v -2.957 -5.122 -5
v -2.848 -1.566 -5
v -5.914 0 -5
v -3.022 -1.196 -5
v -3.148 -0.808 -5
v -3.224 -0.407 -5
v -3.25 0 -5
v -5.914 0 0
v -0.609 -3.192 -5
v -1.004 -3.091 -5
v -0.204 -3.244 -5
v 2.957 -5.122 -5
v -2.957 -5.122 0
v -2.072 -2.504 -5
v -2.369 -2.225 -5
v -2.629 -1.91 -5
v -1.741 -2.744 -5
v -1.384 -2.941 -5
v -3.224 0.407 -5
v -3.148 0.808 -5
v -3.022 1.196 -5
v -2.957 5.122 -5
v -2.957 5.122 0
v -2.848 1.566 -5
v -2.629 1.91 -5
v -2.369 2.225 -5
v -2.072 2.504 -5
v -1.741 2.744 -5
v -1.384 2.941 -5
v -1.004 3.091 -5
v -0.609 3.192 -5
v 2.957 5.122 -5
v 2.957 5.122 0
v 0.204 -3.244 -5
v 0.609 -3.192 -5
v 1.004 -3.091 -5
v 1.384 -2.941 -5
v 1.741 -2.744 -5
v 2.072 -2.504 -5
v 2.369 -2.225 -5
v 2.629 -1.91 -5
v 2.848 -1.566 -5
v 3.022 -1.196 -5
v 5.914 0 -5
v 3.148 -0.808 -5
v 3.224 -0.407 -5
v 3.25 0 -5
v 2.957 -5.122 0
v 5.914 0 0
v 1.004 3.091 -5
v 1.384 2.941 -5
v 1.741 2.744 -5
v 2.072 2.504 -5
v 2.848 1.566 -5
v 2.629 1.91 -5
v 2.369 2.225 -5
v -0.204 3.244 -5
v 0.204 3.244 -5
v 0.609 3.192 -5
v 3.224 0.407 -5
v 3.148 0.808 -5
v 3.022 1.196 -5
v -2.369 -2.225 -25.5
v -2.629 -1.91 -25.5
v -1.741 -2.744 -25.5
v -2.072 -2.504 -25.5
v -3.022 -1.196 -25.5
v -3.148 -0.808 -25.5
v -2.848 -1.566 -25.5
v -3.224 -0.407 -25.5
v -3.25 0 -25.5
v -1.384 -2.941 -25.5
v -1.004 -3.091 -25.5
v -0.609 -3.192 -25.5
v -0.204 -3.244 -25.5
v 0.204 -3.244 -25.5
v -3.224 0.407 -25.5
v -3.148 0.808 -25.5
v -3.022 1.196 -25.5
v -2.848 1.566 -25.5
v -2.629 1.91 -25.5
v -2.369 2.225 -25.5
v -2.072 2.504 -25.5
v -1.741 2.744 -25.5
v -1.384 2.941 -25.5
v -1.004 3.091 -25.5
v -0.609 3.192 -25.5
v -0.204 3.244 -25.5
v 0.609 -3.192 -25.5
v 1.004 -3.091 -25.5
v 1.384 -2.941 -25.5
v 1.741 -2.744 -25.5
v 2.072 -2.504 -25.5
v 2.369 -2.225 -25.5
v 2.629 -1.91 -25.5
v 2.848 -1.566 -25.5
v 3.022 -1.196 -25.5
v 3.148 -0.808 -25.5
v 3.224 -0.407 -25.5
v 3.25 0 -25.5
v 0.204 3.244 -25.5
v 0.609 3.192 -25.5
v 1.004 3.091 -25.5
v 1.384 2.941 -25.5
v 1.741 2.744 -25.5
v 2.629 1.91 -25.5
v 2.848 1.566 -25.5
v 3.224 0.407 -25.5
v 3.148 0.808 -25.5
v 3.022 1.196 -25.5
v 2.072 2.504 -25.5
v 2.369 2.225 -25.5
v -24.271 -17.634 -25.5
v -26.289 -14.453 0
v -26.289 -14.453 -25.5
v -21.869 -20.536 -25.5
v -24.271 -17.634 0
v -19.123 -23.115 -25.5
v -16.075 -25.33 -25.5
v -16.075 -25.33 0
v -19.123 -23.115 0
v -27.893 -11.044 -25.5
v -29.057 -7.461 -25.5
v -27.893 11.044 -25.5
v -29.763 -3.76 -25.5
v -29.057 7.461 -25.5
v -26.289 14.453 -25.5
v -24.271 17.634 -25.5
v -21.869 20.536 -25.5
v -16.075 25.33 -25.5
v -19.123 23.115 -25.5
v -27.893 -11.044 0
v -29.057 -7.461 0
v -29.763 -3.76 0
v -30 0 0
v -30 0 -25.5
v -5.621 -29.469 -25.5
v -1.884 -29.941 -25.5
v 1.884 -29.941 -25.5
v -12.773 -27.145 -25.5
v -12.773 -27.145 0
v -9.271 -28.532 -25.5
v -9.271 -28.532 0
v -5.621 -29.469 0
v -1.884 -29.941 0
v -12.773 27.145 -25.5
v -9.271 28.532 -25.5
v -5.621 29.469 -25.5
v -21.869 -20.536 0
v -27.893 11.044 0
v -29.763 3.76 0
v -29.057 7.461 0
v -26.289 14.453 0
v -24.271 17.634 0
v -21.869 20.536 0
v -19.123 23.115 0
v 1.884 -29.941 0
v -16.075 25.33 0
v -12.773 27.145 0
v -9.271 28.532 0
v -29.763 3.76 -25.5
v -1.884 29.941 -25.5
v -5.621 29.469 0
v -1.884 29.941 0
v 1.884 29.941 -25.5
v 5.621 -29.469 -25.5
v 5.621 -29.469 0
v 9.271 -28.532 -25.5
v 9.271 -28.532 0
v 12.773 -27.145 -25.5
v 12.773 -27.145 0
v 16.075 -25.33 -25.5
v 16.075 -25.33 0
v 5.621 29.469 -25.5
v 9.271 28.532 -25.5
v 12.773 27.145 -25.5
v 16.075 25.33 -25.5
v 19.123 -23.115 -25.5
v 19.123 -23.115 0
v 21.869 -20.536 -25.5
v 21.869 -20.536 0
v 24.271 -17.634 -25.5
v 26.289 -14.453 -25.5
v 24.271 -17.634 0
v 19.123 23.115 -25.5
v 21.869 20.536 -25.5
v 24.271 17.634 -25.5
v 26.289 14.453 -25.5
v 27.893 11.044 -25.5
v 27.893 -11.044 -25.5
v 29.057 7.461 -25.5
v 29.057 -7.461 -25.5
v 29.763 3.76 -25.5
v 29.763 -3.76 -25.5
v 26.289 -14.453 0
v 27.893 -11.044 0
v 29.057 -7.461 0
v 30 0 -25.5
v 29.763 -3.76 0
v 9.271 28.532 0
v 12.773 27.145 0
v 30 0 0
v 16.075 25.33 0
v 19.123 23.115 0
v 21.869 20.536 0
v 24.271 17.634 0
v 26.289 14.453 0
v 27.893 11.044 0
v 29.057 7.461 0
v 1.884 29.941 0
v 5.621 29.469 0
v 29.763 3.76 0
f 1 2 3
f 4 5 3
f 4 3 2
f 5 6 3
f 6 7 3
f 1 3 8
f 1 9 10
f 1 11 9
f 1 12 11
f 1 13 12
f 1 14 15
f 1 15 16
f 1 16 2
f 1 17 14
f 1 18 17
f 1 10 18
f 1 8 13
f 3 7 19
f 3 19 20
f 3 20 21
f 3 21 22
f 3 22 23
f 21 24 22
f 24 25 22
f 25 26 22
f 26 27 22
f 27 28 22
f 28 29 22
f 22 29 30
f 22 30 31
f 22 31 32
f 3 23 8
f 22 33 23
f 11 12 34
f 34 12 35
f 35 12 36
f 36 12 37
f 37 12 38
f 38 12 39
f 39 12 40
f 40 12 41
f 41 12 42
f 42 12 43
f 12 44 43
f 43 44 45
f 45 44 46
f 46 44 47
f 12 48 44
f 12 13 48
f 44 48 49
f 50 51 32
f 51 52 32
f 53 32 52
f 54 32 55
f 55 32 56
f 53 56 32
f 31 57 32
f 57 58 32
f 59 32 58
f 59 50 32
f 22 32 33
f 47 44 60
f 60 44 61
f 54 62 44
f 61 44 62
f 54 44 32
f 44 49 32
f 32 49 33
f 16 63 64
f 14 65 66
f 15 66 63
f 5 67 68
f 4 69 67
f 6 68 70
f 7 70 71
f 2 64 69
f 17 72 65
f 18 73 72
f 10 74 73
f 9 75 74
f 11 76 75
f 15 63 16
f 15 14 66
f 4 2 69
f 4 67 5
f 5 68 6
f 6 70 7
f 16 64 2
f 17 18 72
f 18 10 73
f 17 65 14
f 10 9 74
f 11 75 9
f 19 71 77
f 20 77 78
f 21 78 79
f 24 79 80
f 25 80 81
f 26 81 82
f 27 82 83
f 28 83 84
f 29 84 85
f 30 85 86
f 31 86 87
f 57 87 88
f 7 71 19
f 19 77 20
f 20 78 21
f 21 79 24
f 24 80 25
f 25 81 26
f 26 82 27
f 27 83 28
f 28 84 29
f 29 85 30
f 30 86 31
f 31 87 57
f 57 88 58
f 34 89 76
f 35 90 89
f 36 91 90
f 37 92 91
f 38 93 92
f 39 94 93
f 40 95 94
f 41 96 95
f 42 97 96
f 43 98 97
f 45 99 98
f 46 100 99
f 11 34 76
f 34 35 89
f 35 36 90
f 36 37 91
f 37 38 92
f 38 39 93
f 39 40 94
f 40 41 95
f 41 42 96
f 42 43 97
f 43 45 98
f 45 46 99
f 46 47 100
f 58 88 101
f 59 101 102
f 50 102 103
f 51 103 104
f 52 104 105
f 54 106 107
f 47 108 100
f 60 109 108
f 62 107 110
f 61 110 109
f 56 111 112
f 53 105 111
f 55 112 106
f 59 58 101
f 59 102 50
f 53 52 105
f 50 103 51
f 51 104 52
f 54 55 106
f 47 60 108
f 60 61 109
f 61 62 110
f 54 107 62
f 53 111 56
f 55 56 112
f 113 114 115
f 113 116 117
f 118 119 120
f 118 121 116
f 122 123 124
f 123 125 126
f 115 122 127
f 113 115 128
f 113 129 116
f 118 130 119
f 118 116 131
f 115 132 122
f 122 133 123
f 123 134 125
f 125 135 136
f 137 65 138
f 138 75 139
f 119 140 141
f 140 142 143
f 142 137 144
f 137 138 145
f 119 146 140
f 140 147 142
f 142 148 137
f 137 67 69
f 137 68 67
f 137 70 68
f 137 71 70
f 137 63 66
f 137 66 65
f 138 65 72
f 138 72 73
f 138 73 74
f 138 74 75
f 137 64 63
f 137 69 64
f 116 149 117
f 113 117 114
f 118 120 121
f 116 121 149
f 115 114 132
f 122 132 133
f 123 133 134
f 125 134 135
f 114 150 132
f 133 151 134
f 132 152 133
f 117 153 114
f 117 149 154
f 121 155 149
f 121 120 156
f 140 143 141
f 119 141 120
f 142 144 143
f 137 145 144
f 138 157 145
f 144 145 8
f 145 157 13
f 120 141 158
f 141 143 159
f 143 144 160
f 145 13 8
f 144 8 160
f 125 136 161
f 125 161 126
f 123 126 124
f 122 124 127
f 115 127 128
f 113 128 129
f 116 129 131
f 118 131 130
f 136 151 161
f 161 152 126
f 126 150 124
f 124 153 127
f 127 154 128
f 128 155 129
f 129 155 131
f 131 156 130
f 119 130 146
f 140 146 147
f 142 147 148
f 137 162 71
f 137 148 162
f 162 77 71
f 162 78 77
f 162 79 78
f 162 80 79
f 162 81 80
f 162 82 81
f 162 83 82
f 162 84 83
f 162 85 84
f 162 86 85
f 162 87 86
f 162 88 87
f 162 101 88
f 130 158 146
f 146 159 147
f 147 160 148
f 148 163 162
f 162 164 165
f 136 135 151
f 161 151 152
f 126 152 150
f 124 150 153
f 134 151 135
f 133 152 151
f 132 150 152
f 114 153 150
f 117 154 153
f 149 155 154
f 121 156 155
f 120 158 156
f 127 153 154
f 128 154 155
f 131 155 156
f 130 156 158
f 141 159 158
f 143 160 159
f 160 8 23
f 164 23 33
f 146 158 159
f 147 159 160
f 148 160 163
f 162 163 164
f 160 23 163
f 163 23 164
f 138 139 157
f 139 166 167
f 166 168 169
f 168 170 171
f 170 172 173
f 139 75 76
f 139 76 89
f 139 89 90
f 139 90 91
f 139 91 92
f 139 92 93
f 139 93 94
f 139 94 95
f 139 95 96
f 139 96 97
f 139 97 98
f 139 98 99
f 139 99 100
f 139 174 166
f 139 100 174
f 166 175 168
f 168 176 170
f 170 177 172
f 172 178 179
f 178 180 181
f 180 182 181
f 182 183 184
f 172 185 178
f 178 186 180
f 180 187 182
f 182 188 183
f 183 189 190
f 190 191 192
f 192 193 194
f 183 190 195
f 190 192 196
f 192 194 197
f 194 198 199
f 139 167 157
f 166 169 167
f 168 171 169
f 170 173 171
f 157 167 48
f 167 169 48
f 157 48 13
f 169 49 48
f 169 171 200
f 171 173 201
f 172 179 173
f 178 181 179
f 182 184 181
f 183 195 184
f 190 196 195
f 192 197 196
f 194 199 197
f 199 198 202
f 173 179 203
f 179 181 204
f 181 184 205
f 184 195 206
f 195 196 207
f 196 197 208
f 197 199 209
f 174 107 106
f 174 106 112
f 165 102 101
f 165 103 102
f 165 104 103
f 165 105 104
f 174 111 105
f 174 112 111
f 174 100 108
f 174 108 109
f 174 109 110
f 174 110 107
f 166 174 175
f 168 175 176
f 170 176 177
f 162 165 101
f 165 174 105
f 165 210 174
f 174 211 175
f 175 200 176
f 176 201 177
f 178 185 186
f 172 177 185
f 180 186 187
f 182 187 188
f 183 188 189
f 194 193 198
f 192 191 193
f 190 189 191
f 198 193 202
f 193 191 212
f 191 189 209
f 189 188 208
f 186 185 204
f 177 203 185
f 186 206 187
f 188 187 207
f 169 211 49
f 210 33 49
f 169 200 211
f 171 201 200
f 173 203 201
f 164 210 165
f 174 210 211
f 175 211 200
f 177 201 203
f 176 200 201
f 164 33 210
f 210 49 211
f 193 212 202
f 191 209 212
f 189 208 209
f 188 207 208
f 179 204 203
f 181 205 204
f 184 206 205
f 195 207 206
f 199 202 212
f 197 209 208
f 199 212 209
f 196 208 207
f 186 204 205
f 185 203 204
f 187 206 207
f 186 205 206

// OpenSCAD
$fn = 50;

difference() {
	union() {
		translate(v = [0, 0, -25.5]) {
			cylinder(h = 25.5, r = 30.0);
		}
	}
	union() {
		translate(v = [0, 0, 0]) {
			rotate(a = [0, 0, 0]) {
				difference() {
					union() {
						translate(v = [0, 0, -5]) {
							linear_extrude(height = 5) {
								polygon(points = [[5.914249999999999, 0.0], [2.957125, 5.1218907443321156], [-2.9571249999999982, 5.1218907443321156], [-5.914249999999999, 7.242867331857232e-16], [-2.9571250000000022, -5.121890744332115], [2.9571249999999956, -5.121890744332118]]);
							}
						}
					}
					union();
				}
			}
		}
		#translate(v = [0, 0, -100.0]) {
			cylinder(h = 200, r = 3.25);
		}
	}
}
